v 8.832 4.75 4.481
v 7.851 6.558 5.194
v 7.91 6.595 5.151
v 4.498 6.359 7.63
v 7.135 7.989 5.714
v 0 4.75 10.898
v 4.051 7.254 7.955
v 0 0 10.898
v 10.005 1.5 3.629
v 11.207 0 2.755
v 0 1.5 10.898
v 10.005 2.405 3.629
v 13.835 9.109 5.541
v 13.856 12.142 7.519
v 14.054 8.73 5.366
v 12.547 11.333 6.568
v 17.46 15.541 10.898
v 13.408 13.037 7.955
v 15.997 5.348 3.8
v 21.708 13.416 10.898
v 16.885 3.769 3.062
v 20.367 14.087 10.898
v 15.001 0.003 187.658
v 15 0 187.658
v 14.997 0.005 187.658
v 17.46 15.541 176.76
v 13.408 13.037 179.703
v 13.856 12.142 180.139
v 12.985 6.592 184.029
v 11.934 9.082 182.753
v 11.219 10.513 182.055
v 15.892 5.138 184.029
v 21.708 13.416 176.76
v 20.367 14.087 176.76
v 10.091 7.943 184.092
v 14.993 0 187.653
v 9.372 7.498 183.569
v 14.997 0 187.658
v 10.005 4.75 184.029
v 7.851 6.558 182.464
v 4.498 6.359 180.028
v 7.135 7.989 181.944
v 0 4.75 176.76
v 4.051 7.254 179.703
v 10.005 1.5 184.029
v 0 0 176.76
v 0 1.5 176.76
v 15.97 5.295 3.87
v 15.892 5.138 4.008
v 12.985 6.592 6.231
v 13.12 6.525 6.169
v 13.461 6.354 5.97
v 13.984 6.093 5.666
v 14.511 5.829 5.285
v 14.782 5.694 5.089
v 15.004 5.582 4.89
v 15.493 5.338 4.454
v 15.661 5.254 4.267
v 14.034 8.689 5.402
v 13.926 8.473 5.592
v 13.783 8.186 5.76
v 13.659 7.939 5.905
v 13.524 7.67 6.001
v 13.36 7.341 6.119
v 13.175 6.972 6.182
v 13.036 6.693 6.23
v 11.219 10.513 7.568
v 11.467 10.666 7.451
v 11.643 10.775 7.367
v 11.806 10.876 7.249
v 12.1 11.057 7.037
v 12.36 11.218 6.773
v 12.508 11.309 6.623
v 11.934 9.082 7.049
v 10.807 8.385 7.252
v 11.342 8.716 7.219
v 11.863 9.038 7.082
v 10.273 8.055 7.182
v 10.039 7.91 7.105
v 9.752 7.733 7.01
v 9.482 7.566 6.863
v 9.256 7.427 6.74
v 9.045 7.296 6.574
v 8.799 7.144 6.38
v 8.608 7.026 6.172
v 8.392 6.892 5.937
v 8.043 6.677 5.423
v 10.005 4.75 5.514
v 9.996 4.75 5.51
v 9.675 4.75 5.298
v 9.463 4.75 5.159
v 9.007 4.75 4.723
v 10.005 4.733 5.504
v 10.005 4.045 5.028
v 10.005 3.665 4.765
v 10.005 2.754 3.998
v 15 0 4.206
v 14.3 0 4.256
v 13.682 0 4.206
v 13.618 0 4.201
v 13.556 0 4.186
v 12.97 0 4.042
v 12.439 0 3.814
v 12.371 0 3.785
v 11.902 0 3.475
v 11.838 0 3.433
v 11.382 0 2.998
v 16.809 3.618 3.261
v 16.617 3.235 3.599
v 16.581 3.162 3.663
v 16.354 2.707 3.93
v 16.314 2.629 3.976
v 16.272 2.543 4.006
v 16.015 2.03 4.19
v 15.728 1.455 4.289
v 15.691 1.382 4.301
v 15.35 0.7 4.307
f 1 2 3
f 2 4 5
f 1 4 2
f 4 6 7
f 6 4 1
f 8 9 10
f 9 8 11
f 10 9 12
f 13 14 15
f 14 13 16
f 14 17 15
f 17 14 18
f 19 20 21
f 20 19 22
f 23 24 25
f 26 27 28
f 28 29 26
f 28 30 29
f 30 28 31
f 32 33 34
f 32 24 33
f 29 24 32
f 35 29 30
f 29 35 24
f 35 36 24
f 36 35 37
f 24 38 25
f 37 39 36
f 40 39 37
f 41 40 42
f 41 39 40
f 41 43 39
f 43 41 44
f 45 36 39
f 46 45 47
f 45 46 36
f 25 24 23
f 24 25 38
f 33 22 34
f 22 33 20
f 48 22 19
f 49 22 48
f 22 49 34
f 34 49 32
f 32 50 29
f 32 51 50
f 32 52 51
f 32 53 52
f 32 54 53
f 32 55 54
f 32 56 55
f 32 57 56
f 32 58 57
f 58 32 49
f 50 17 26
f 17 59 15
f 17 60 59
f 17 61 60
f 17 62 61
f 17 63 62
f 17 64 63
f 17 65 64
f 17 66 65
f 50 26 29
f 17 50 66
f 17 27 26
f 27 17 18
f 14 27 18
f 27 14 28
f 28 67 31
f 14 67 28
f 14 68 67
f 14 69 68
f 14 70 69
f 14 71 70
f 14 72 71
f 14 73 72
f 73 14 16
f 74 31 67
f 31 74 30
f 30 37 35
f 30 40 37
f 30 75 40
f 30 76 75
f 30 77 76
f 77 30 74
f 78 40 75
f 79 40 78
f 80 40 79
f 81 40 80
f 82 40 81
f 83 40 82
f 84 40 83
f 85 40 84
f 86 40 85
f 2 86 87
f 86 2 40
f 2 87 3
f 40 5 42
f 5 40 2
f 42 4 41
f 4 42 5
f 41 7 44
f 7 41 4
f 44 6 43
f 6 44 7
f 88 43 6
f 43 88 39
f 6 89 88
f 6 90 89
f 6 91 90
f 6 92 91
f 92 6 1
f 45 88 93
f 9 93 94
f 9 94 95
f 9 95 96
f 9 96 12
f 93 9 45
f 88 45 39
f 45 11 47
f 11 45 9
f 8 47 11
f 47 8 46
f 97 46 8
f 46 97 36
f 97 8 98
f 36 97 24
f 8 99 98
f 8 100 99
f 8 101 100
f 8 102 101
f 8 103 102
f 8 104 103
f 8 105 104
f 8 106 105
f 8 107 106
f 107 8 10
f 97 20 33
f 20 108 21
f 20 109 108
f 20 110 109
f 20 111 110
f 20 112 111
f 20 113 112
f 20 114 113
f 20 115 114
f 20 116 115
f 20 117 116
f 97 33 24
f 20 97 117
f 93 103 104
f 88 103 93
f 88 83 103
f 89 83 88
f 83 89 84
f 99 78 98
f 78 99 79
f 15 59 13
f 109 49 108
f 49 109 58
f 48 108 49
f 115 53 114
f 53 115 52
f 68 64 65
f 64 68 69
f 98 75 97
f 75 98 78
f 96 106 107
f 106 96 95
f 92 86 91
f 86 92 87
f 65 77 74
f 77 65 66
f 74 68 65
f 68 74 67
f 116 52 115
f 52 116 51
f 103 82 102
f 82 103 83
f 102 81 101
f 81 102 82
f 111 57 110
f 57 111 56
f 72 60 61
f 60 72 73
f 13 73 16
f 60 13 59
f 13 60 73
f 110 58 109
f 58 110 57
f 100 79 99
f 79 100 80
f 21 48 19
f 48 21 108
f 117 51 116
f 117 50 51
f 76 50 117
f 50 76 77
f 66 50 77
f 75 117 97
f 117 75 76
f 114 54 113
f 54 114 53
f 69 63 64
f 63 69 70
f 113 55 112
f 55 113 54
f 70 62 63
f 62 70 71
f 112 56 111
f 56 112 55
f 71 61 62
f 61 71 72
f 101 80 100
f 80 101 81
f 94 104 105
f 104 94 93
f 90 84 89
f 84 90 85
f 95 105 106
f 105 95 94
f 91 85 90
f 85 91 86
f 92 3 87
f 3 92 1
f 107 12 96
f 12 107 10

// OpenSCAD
// Regular Dodecahedron Edge Ribs With Hub Wire Channel


// Cf. https://github.com/openscad/openscad/issues/4603 for a good discussion
// that helped resolve some of the issues in this design.

$fn = 40;

// Variable parameters to cusomize the edge ribs
paneEdge = ((7 + 1/16) * 25.4) - 5.5; // paneEdge (6in x 25.4 mm/in plus adjustment)
edgeThickness = 1.5;   // thickness of the edge
ribWidth = 15;         // width of the rib
paneThickness = 3.25;  // thickness of the pane
channelWidth = 11;     // width of LED strip channel
channelDepth = 1;      // depth of LED strip channel
wireWidth = 3 * 1.6;   // width of wire channel (3x 22 AWG insulated wires)
wireDepth = 1.6;       // depth of wire channel (1x 22 AWG insulated wire)
dihedral = 116.56505;  // angle of polyhedron dihedral
interior = 108.0;      // angle of face interior
fudge = 0.01;          // render artifact elimination fudge factor
vertexHole = true;    // include a vertex hole for wire exit

// Calculated parameters
edge = 0.667 * ribWidth  * tan(interior / 2) + paneEdge;
echo("pane edge", paneEdge);
echo("edge", edge);

difference() {
    extruded_edge(edge, edgeThickness, ribWidth, paneThickness, channelWidth, channelDepth, wireWidth, wireDepth, dihedral);
    bevel_cuts(ribWidth, interior, dihedral);
    translate([ribWidth,0,edge]) {
        rotate([0,0,180-dihedral]) {
            translate([ribWidth,0,0]) {
                rotate([0,180,0]) {
                    bevel_cuts(ribWidth, interior, dihedral);
                }
            }
        }
    }
    if (vertexHole) {
        wire_hole(ribWidth, wireDepth, interior, dihedral);
    }
}


// Vertex Wire hole
module wire_hole(ribWidth, wireDepth, interior, dihedral) {
    translate([ribWidth,0,0]) {
        rotate([interior - 90, 0, dihedral - 90]) {
            translate([0,20,0]) {
                rotate([90,0,0]) {
                    cylinder(h = 20, r = 2.5 * wireDepth);
                }
            }
        }
    }
}

// Bevel cuts for the end of the rib
module bevel_cuts(ribWidth, interior, dihedral) {
    union() {
        angle_cut(ribWidth, interior);
        translate([ribWidth,0,0]) {
            rotate([0,0,180-dihedral]) {
                translate([ribWidth, 0, 0]) {
                    mirror([1,0,0]) {
                        angle_cut(ribWidth, interior);
                    }
                }
            }
        }
    }
}


// Half of one bevel
module angle_cut(ribWidth, interior) {

    angle_ab = 90 - (interior / 2);

    ax = 0;
    ay = 0;
    az = 0;
    bx = ribWidth;
    by = 0;
    bz = 0;
    cx = 0;
    cy = 0;
    cz = ribWidth * tan(angle_ab);
    dx = 0;
    dy = 20;
    dz = 0;
    ex = ribWidth;
    ey = 20;
    ez = 0;
    fx = 0;
    fy = 20;
    fz = ribWidth * tan(angle_ab);

    polyhedron(
        points=[
            [ax-fudge, ay-fudge, az-fudge], // point a (0)
            [bx, by-fudge, bz],             // point b (1)
            [cx, cy-fudge, cz],             // point c (2)
            [dx-fudge, dy, dz-fudge],       // point d (3)
            [ex, ey, ez],                   // point e (4)
            [fx, fy, fz]                    // point f (5)
        ],
        faces=[
            [0, 3, 5, 2], // face A
            [0, 1, 4, 3], // face B
            [1, 2, 5, 4], // face C
            [3, 4, 5],    // face D
            [0, 2, 1]     // face E
        ],
        convexity=10
    );
};


// Rib extrusion
module extruded_edge(edge, edgeThickness, ribWidth, paneThickness, channelWidth, channelDepth, wireWidth, wireDepth, dihedral) {

    linear_extrude(height=edge, center=false, convexity=10, twist=0, slices=20, scale=1) {
        
        ax = 0;
        ay = 0;
        bx = ribWidth;
        by = 0;
        cx = ribWidth + ribWidth * cos(180 - dihedral);
        cy = ribWidth * sin(180 - dihedral);
        dx = cx - edgeThickness * cos(dihedral - 90);
        dy = cy + edgeThickness * sin(dihedral - 90);
        ex = dx - 0.667 * ribWidth * cos(180 - dihedral);
        ey = dy - 0.667 * ribWidth * sin(180 - dihedral);
        fx = ex - paneThickness * cos(dihedral - 90);
        fy = ey + paneThickness * sin(dihedral - 90);
        gx = fx + 0.667 * ribWidth * cos(180 - dihedral);
        gy = fy + 0.667 * ribWidth * sin(180 - dihedral);
        px = 0;
        py = edgeThickness + paneThickness;
        qx = 0.667 * ribWidth;
        qy = py;
        rx = qx;
        ry = edgeThickness;
        sx = 0;
        sy = ry; 

        angle_opq = atan((gy - py) / gx);  // derived angle of inside edge
        gp = gx / cos(angle_opq);          // total width of inside edge
        gh = 0.5 * (gp - channelWidth);    // width of offset on either side of the LED channel
        ho = gp - 2 * gh;                  // derived width of LED channel (should match specified)
        jm = wireWidth;                    // total width of wire channel
        ij = 0.5 * (ho - jm);              // width of offset on either side of wire channel within the LED channel
        assert(ho == channelWidth, "Derived channel width does not match specified width");
        assert(jm < ho, "Total wire channel width exceeds the width of the LED strip");

        hx = gx - gh * cos(angle_opq);
        hy = gy - gh * sin(angle_opq);
        ix = hx + channelDepth * sin(90 - 2 * angle_opq);
        iy = hy - channelDepth * cos(90 - 2 * angle_opq);
        ox = px + gh * cos(angle_opq);
        oy = py + gh * sin(angle_opq);
        nx = ox + channelDepth * sin(90 - 2 * angle_opq);
        ny = oy - channelDepth * cos(90 - 2 * angle_opq);
        jx = ix - ij * cos(angle_opq);
        jy = iy - ij * sin(angle_opq);
        kx = jx + wireDepth * sin(90 - 2 * angle_opq);
        ky = jy - wireDepth * cos(90 - 2 * angle_opq);
        mx = nx + ij * cos(angle_opq);
        my = ny + ij * sin(angle_opq);
        lx = mx + wireDepth * sin(90 - 2 * angle_opq);
        ly = my - wireDepth * cos(90 - 2 * angle_opq);
                
        polygon([
            [ax, ay], // point 'a'
            [bx, by], // point 'b'
            [cx, cy], // point 'c'
            [dx, dy], // point 'd'
            [ex, ey], // point 'e'
            [fx, fy], // point 'f'
            [gx, gy], // point 'g'
            [hx, hy], // point 'h'
            [ix, iy], // point 'i'
            [jx, jy], // point 'j'
            [kx, ky], // point 'k'
            [lx, ly], // point 'l'
            [mx, my], // point 'm'
            [nx, ny], // point 'n'
            [ox, oy], // point 'o'
            [px, py], // point 'p'
            [qx, qy], // point 'q'
            [rx, ry], // point 'r'
            [sx, sy]  // point 's'
        ]);
    }
};
